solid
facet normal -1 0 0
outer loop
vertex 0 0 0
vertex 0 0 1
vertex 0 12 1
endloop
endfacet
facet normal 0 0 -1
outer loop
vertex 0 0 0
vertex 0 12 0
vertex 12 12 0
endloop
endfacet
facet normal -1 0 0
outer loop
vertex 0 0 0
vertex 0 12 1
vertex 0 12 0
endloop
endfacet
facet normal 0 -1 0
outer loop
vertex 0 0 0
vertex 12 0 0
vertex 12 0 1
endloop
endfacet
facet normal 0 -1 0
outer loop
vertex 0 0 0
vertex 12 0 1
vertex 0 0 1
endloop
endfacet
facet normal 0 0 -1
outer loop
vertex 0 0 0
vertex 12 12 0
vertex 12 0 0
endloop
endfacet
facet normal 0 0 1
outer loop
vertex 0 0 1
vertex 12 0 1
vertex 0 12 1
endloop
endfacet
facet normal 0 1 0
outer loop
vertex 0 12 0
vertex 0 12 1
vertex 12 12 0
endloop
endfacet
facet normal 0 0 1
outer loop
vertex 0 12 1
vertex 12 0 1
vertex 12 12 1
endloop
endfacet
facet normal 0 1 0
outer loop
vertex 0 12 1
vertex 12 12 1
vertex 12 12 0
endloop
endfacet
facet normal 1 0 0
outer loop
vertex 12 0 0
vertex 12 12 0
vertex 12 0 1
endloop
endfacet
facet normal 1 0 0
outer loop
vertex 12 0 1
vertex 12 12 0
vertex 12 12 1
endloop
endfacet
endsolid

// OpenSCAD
/* Warning, this is a very basic generator with a lot of approximation 
input data : [TQFP, 4JB, 12x12x1mm, 100, , A, C04-21545A]
generated by com.zoubworld.electronics.cad.model3d.Basic
Date : Sun Feb 15 10:50:49 CET 2026
*/

//body
color("black")
translate([0,0,0])
cube([12.0,12.0,1.0], center=false);
